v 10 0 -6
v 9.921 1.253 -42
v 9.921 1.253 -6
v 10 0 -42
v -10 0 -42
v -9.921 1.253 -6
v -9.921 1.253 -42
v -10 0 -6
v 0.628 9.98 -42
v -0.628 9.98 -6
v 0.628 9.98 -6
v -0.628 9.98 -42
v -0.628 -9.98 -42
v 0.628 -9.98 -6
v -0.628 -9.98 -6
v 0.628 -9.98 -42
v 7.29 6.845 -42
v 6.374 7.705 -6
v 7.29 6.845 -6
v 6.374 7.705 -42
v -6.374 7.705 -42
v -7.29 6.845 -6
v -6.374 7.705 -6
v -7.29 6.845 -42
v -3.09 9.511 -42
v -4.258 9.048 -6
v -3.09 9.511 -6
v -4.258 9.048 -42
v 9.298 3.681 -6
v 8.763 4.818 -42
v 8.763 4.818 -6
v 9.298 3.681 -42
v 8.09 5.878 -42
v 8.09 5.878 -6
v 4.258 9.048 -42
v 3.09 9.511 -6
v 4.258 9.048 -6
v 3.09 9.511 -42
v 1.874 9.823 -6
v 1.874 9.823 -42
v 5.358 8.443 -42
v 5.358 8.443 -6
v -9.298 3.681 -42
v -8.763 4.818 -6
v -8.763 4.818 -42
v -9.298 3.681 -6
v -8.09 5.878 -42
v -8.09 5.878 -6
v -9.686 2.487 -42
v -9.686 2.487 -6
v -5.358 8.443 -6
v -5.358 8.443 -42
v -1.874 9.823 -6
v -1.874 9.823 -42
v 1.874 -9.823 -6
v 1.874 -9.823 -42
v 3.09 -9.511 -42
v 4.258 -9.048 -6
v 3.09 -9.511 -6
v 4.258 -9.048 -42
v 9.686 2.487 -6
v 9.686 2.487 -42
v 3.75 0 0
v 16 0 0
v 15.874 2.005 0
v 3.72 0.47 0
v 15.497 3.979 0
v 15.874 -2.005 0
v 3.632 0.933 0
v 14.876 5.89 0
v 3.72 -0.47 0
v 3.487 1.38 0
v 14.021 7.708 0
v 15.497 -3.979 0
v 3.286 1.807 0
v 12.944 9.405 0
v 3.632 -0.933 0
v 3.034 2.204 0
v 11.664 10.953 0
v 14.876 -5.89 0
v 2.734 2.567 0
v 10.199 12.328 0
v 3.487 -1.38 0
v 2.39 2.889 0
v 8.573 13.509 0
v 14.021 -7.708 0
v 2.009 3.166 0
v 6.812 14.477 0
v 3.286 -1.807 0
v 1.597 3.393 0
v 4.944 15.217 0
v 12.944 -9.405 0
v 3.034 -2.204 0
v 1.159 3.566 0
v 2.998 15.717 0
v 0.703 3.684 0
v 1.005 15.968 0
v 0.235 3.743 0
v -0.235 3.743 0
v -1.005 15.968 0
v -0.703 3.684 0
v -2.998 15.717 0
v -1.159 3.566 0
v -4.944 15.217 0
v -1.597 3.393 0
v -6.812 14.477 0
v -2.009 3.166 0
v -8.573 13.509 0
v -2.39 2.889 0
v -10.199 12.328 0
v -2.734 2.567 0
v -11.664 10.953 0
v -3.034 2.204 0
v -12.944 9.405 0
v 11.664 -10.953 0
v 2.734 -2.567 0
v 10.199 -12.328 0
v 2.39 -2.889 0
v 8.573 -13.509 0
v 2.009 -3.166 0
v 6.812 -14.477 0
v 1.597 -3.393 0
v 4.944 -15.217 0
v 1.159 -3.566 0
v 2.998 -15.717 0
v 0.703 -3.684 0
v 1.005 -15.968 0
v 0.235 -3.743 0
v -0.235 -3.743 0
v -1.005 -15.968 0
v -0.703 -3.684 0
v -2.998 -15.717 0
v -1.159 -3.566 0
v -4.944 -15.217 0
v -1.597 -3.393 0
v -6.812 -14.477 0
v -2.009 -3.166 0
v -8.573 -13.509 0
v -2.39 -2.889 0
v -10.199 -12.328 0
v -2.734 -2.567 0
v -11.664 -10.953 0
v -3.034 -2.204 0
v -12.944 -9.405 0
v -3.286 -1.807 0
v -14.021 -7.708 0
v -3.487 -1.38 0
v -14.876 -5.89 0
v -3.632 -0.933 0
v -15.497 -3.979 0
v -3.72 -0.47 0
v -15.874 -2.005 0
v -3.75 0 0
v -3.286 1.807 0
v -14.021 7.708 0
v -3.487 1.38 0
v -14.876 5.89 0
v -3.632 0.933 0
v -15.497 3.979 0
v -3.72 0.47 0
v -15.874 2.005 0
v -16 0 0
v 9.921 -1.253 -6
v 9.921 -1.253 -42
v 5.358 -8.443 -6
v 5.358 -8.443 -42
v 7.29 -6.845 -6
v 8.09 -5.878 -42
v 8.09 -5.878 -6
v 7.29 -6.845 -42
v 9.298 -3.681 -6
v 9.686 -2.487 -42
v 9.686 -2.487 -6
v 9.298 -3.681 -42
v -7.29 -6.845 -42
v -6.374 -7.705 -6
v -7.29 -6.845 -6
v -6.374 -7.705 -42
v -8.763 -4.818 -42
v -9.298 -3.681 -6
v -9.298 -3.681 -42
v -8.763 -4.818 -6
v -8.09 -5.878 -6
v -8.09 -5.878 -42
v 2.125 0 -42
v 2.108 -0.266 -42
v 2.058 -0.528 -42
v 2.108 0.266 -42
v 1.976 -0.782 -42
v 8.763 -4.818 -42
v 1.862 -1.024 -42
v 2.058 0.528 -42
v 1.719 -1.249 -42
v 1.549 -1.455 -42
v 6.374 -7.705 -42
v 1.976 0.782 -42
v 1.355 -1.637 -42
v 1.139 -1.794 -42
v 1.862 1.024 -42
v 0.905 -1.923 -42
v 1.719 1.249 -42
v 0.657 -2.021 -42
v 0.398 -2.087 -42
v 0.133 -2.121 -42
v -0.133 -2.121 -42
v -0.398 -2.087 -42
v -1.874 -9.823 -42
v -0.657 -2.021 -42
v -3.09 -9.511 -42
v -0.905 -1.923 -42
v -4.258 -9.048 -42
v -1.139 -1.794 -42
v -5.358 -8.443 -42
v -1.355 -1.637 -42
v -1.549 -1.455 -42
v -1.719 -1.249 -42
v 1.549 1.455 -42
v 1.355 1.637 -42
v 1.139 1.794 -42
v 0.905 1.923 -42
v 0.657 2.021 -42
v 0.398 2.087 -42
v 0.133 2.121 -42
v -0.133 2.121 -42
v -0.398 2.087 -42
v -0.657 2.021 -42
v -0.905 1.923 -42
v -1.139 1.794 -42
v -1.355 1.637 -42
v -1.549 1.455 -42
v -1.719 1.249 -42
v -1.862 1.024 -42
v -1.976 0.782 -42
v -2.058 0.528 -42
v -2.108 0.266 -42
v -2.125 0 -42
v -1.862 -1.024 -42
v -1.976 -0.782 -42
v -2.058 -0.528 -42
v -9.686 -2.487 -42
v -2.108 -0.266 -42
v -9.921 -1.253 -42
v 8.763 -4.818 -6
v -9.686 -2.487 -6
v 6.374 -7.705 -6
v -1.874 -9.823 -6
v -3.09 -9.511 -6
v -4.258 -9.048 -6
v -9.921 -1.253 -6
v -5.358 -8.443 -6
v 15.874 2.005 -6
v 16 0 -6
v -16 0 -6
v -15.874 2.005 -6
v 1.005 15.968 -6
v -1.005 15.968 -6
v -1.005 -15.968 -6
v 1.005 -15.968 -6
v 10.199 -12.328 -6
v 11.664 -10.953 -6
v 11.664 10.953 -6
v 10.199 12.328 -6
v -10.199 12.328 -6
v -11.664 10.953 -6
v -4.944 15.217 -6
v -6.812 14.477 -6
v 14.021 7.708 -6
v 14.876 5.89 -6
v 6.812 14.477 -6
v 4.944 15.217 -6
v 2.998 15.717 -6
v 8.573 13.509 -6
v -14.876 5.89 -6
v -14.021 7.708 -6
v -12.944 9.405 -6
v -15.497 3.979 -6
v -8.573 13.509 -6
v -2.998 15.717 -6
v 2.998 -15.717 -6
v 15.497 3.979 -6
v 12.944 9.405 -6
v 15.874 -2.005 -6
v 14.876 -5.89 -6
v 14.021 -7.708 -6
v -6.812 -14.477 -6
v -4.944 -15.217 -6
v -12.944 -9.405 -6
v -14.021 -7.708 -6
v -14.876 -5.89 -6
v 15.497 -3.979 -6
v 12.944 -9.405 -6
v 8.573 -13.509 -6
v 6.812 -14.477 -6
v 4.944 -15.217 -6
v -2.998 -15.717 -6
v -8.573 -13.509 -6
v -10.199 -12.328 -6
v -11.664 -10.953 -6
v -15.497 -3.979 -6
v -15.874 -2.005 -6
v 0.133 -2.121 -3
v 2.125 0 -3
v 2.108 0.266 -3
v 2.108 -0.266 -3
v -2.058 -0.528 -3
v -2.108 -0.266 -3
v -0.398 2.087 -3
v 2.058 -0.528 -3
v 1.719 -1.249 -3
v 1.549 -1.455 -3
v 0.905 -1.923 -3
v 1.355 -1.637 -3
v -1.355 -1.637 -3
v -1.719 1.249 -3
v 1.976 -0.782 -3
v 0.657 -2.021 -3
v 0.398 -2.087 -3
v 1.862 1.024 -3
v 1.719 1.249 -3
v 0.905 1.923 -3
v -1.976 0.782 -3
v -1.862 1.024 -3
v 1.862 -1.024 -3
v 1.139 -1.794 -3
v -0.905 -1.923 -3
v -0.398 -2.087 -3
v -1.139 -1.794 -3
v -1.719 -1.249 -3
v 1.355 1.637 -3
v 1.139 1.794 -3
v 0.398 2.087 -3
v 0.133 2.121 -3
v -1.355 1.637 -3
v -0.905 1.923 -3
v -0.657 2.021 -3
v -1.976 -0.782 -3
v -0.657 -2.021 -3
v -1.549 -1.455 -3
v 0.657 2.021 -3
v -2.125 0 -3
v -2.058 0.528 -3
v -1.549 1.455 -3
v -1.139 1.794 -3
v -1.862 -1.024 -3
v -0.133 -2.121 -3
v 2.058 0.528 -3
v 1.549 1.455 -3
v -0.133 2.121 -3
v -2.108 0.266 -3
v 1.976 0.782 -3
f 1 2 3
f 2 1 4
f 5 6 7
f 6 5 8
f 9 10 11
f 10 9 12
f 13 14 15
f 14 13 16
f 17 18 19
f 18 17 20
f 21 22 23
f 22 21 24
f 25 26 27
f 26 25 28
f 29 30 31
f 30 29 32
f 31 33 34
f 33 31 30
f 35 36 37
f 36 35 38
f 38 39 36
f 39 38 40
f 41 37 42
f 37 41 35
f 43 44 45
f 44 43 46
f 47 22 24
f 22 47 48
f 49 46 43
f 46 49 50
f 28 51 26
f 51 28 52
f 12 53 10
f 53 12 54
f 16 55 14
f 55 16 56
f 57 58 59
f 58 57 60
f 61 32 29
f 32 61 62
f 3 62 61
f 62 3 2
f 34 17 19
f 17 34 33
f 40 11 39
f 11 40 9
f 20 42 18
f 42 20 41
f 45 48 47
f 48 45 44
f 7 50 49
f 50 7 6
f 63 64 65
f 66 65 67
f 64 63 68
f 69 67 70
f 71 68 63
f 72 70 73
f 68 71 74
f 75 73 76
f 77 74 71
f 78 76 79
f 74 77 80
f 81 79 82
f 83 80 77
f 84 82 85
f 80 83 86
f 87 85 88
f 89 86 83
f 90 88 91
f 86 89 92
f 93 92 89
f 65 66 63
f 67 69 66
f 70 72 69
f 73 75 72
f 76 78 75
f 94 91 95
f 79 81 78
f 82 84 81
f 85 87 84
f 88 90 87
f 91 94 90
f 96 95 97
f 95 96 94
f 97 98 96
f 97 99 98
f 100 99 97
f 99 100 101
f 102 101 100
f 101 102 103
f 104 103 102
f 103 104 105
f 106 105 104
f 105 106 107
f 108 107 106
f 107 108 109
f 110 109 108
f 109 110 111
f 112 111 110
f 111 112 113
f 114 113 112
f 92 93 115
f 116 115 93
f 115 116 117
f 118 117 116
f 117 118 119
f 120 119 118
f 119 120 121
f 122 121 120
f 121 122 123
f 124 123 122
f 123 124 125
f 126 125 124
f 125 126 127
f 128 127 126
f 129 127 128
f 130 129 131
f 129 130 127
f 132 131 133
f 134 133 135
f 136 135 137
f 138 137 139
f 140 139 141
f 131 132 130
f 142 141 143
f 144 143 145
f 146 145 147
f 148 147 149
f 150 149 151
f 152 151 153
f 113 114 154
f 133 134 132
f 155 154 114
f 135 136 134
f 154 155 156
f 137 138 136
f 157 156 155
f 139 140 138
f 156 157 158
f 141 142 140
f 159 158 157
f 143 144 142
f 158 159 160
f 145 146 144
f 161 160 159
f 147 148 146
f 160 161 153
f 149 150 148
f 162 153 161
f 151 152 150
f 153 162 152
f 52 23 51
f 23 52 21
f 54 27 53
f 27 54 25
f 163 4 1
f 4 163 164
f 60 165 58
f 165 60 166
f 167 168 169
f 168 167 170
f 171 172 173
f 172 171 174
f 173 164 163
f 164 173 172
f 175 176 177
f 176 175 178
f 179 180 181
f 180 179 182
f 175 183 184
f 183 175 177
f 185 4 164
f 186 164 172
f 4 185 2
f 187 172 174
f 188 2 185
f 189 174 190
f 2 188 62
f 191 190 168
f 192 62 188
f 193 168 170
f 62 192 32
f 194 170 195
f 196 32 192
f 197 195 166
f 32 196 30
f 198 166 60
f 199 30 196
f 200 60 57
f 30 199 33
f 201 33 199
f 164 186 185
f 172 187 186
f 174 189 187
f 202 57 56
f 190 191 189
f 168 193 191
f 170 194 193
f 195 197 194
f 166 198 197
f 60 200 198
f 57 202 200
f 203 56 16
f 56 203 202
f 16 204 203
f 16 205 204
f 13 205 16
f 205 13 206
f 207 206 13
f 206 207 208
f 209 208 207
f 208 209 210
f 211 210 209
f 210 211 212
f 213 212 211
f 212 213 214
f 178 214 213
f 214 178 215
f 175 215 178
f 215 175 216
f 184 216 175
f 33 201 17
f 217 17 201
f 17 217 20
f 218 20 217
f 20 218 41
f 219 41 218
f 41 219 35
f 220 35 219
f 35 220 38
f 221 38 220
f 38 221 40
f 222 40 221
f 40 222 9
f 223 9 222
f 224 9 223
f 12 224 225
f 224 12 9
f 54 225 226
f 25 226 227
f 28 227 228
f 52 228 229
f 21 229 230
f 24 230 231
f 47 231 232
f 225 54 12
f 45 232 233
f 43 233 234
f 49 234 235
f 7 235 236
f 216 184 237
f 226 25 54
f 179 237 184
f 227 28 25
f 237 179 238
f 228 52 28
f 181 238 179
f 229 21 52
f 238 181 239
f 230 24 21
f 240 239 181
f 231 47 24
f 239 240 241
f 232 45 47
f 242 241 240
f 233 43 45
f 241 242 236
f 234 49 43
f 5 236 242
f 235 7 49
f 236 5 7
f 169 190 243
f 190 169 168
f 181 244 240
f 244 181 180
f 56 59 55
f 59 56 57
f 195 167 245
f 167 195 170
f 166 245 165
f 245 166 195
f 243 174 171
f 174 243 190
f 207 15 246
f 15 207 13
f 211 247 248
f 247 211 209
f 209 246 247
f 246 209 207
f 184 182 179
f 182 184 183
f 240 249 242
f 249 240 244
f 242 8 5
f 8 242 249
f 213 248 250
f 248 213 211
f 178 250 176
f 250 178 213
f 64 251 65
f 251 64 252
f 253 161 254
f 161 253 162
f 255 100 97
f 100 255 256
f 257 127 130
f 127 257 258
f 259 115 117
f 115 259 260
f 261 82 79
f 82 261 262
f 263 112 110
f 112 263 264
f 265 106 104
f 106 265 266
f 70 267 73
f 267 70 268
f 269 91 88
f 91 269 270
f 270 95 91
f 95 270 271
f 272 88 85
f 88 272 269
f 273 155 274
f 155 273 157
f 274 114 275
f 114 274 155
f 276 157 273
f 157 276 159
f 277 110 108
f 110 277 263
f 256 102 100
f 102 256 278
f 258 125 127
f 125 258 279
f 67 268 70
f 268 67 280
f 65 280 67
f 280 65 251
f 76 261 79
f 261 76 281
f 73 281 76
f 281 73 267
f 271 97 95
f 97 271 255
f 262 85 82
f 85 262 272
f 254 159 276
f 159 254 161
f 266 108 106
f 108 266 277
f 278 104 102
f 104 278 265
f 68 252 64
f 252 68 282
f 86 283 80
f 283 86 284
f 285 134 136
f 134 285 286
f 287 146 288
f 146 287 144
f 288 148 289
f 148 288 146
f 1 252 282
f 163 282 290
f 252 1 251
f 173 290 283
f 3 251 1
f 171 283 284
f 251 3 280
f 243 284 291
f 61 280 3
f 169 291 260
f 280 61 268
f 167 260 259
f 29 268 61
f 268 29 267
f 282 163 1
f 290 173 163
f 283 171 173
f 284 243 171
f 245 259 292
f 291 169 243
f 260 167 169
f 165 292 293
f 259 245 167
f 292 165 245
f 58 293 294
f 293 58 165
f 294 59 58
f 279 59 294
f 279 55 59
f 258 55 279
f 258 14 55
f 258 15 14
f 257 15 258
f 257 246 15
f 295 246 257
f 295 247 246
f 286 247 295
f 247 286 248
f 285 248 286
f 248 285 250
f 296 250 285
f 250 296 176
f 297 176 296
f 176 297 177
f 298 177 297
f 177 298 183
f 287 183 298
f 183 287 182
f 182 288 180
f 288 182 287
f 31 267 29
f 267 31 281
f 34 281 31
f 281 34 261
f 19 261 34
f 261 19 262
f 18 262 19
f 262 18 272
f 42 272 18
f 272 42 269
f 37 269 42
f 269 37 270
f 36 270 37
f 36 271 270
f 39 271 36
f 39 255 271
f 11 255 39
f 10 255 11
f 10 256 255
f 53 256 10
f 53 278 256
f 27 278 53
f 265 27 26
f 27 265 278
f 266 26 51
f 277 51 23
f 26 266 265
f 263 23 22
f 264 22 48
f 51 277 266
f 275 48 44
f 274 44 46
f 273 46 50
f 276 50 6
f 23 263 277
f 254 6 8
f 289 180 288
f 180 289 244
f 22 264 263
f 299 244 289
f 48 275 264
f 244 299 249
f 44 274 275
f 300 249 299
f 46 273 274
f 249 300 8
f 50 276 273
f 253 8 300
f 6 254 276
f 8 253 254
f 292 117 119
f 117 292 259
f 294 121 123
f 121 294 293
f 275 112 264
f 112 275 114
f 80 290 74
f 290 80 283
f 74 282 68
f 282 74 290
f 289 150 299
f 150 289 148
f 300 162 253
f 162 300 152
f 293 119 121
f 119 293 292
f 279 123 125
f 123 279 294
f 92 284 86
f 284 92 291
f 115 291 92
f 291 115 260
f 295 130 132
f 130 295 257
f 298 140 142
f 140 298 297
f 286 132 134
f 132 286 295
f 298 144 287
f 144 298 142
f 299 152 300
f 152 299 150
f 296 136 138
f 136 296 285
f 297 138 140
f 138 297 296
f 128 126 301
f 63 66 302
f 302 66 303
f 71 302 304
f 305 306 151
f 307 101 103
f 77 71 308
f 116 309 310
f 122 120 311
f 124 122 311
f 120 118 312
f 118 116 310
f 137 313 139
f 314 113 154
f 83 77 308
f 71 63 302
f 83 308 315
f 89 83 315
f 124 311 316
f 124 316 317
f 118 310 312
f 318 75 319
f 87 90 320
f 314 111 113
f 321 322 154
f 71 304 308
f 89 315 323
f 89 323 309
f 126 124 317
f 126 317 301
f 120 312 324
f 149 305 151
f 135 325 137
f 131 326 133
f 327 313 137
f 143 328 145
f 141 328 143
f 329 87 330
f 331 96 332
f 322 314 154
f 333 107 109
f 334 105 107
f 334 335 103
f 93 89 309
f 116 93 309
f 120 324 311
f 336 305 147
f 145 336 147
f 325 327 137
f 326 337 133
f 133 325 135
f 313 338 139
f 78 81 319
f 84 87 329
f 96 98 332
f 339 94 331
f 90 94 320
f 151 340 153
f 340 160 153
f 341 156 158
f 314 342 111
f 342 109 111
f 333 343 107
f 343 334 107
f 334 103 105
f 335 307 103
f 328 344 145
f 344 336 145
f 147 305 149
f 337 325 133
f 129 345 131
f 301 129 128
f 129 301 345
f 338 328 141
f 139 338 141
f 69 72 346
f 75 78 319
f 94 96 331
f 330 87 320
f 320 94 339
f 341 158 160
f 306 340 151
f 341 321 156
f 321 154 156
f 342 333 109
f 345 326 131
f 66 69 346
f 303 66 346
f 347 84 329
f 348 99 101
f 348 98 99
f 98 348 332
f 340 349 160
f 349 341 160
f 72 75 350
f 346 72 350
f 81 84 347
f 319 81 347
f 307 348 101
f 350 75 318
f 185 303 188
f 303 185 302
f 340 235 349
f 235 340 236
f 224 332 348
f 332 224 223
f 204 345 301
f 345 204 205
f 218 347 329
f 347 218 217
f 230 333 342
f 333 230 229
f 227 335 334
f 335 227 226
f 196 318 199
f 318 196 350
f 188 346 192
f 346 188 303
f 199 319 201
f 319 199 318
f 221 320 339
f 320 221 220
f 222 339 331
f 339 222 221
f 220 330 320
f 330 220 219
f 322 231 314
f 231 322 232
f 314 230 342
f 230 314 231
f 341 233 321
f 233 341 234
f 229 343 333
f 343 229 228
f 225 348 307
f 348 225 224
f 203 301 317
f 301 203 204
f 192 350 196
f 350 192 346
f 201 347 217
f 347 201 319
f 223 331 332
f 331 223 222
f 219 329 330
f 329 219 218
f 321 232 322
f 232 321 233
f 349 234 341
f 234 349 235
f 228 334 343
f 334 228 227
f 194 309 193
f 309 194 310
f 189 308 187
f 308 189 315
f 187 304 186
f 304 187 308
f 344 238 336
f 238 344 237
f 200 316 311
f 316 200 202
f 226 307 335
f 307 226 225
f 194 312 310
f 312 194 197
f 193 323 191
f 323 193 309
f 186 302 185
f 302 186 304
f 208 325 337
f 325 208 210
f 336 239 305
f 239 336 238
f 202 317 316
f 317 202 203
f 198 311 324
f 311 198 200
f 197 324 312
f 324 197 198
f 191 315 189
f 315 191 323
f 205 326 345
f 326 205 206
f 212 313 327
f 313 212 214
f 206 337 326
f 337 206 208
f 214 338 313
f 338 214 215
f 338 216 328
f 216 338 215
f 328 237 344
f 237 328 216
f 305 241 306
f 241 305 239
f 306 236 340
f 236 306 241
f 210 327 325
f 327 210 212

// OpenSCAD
$fn = 50;


difference() {
	union() {
		translate(v = [0, 0, -42.0000000000]) {
			cylinder(h = 42, r = 10.0000000000);
		}
		translate(v = [0, 0, -6.0000000000]) {
			cylinder(h = 6, r = 16.0000000000);
		}
	}
	union() {
		translate(v = [0, 0, 0]) {
			rotate(a = [0, 0, 0]) {
				difference() {
					union() {
						#translate(v = [0, 0, -42.0000000000]) {
							cylinder(h = 42, r = 2.0000000000);
						}
						#translate(v = [0, 0, -3]) {
							cylinder(h = 3, r1 = 2.1250000000, r2 = 3.7500000000);
						}
						#translate(v = [0, 0, -42.0000000000]) {
							cylinder(h = 42, r = 2.1250000000);
						}
						#translate(v = [0, 0, -42.0000000000]) {
							cylinder(h = 42, r = 2.0000000000);
						}
					}
					union();
				}
			}
		}
	}
}
